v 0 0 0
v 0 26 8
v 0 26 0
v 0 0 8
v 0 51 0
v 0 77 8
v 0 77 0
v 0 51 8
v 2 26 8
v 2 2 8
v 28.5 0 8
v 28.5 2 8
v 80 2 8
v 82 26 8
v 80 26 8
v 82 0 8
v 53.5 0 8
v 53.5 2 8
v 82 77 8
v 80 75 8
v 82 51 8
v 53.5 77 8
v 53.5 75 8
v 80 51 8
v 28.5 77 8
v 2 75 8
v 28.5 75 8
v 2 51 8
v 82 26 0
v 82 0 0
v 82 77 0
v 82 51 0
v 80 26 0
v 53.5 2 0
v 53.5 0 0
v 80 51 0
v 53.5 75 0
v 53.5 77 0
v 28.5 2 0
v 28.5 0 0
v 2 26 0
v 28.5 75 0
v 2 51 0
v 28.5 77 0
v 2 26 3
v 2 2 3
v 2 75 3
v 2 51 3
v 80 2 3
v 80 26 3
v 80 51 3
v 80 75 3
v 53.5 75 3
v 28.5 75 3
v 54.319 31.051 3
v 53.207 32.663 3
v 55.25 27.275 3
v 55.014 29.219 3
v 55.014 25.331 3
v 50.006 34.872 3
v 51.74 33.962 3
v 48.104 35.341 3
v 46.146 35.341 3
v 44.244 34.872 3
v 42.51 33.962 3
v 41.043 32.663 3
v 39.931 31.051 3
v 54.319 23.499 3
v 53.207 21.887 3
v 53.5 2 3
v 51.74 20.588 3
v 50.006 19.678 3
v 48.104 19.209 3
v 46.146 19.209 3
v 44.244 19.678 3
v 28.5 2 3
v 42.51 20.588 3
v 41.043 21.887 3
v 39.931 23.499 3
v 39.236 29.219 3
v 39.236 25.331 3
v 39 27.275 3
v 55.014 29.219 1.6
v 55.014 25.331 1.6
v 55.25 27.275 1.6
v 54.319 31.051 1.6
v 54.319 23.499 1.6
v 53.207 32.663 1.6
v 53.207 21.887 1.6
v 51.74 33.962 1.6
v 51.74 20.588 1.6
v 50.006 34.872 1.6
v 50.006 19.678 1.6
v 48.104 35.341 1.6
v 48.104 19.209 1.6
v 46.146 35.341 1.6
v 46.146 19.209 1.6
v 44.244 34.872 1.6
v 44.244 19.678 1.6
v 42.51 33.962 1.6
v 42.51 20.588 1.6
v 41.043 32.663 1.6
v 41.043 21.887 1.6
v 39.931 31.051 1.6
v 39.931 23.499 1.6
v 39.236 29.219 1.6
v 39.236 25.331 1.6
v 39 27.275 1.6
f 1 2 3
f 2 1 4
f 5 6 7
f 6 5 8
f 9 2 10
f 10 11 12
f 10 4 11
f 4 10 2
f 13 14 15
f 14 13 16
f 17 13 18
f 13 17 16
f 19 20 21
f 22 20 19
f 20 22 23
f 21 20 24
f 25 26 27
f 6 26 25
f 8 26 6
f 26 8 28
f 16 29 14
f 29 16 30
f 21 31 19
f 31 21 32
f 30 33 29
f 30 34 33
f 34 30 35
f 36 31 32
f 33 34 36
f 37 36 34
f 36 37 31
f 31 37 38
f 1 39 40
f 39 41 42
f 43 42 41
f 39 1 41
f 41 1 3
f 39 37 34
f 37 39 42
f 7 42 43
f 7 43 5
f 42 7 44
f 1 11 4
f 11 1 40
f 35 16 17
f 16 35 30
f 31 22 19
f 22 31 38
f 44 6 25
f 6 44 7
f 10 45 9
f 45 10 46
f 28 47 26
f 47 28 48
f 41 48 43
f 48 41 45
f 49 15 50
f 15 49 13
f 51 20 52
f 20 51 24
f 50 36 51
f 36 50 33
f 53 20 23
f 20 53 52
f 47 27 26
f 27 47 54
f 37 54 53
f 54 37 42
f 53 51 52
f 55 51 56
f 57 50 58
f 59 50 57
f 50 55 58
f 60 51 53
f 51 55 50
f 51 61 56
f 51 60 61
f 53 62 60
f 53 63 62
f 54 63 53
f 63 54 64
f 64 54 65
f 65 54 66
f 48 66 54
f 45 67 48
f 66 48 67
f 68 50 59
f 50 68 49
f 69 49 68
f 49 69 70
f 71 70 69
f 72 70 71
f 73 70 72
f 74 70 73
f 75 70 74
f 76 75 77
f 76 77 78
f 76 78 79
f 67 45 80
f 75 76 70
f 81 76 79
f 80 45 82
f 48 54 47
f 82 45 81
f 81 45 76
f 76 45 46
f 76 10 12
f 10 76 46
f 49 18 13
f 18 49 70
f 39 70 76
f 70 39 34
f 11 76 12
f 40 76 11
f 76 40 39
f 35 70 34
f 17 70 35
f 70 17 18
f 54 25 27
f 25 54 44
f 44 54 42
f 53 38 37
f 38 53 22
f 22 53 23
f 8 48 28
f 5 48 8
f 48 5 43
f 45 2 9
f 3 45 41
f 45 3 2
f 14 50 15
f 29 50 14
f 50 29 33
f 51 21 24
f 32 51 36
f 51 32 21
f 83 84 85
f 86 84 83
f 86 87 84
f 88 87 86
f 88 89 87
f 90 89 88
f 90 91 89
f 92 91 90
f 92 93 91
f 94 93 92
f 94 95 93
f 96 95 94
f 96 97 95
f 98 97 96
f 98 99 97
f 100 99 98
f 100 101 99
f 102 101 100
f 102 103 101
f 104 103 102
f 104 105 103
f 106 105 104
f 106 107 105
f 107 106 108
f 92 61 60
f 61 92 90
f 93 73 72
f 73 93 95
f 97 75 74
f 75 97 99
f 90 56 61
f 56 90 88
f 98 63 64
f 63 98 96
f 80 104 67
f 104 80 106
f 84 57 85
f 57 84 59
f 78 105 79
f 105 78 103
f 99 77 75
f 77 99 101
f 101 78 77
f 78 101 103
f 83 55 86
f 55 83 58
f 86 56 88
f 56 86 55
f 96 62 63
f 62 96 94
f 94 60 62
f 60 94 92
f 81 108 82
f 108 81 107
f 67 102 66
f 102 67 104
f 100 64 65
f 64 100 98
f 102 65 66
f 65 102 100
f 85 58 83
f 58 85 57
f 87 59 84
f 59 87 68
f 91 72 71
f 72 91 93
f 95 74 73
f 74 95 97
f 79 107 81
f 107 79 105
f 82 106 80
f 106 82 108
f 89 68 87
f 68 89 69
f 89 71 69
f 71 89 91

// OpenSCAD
length = 77;
width = 72;
height = 3;
rimHeight = 5;
rimThickness = 2;
notchLength = 25;
//Based on washer size:
washerDiameter = 16.25;
washerHeight = 1.4;
rimPadding = 1;
totalHeight = height + rimHeight;

wallThickness = 2;
workerBoxWidth = 14.3;
fingerNotchSize = 6;
coloredCubesBoxLength = 27;

totalLength = length + rimThickness * 2 + rimPadding;
totalWidth = width + rimThickness * 2 + rimPadding;
difference() {
    cube([totalLength, totalWidth, height + rimHeight]);
    translate([rimThickness, rimThickness, height])
        cube([length + rimPadding, width + rimPadding, rimHeight]);
    
    translate([totalLength/2 - notchLength/2, 0, 0])
        cube([notchLength, rimThickness, totalHeight]);
    translate([totalLength/2 - notchLength/2, totalWidth-rimThickness, 0])
        cube([notchLength, rimThickness, totalHeight]);


    translate([0, totalWidth/2 - notchLength/2, 0])
        cube([rimThickness, notchLength, totalHeight]);
    translate([totalLength-rimThickness, totalWidth/2 - notchLength/2, 0])
        cube([rimThickness, notchLength, totalHeight]);
    
    translate([
        wallThickness * 2 + coloredCubesBoxLength + fingerNotchSize + washerDiameter/2 + rimThickness,
        width - (wallThickness + workerBoxWidth * 2 + wallThickness * 2 + washerDiameter/2 + rimThickness),
        height - washerHeight])
        cylinder(washerHeight, d=washerDiameter);
}
